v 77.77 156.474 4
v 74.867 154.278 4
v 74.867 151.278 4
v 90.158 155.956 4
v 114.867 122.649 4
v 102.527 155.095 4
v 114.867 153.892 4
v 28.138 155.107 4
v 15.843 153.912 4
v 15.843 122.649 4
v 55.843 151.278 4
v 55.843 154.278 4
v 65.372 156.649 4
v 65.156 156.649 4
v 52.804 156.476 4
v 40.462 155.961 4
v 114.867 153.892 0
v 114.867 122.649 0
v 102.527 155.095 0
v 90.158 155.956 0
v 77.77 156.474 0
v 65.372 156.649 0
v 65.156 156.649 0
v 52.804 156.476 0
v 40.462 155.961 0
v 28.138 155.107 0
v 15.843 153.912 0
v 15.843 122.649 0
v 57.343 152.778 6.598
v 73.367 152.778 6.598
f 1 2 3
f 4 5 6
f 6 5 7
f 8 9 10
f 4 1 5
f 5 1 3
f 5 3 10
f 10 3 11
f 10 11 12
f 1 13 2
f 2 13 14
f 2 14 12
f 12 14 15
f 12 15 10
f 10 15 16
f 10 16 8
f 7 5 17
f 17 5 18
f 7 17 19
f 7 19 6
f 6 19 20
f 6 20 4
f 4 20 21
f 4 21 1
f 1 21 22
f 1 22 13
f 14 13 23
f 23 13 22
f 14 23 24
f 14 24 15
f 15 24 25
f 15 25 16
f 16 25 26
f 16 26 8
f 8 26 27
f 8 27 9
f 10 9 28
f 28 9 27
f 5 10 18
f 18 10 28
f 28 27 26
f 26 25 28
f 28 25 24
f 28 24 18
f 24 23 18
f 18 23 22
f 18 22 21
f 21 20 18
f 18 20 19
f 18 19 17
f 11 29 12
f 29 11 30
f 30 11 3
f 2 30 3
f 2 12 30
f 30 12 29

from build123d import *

# Parameters (mm, degrees)
BOSS_EXTRU_2_DEPTH = 4
ESQUISSE6_W        = 19.024162062
ESQUISSE6_H        = 3
BOSS_EXTRU_3_DEPTH = 3
BOSS_EXTRU_3_TAPER = 30


with BuildPart() as part:
    # Esquisse2 → Boss.-Extru.2 (new body)
    with BuildSketch(Plane.XY):
        with BuildLine():
            Line((15.843049481, 153.91195697), (15.843049481, 122.649102361))
            Line((15.843049481, 122.649102361), (114.867211543, 122.649102361))
            Line((114.867211543, 122.649102361), (114.867211543, 153.891733148))
            ThreePointArc((114.867211543, 153.891733148), (90.104041762, 155.959238078), (65.264290885, 156.649115353))
            ThreePointArc((65.264290885, 156.649115353), (40.515800335, 155.964301811), (15.843049481, 153.91195697))
        make_face()
    extrude(amount=BOSS_EXTRU_2_DEPTH)

    # Esquisse6 → Boss.-Extru.3 (add)
    with BuildSketch(Plane.XY.offset(4)):
        with Locations((65.355130512, 152.77778229)):
            Rectangle(ESQUISSE6_W, ESQUISSE6_H)
    extrude(amount=BOSS_EXTRU_3_DEPTH, taper=BOSS_EXTRU_3_TAPER)


solid = part.part
